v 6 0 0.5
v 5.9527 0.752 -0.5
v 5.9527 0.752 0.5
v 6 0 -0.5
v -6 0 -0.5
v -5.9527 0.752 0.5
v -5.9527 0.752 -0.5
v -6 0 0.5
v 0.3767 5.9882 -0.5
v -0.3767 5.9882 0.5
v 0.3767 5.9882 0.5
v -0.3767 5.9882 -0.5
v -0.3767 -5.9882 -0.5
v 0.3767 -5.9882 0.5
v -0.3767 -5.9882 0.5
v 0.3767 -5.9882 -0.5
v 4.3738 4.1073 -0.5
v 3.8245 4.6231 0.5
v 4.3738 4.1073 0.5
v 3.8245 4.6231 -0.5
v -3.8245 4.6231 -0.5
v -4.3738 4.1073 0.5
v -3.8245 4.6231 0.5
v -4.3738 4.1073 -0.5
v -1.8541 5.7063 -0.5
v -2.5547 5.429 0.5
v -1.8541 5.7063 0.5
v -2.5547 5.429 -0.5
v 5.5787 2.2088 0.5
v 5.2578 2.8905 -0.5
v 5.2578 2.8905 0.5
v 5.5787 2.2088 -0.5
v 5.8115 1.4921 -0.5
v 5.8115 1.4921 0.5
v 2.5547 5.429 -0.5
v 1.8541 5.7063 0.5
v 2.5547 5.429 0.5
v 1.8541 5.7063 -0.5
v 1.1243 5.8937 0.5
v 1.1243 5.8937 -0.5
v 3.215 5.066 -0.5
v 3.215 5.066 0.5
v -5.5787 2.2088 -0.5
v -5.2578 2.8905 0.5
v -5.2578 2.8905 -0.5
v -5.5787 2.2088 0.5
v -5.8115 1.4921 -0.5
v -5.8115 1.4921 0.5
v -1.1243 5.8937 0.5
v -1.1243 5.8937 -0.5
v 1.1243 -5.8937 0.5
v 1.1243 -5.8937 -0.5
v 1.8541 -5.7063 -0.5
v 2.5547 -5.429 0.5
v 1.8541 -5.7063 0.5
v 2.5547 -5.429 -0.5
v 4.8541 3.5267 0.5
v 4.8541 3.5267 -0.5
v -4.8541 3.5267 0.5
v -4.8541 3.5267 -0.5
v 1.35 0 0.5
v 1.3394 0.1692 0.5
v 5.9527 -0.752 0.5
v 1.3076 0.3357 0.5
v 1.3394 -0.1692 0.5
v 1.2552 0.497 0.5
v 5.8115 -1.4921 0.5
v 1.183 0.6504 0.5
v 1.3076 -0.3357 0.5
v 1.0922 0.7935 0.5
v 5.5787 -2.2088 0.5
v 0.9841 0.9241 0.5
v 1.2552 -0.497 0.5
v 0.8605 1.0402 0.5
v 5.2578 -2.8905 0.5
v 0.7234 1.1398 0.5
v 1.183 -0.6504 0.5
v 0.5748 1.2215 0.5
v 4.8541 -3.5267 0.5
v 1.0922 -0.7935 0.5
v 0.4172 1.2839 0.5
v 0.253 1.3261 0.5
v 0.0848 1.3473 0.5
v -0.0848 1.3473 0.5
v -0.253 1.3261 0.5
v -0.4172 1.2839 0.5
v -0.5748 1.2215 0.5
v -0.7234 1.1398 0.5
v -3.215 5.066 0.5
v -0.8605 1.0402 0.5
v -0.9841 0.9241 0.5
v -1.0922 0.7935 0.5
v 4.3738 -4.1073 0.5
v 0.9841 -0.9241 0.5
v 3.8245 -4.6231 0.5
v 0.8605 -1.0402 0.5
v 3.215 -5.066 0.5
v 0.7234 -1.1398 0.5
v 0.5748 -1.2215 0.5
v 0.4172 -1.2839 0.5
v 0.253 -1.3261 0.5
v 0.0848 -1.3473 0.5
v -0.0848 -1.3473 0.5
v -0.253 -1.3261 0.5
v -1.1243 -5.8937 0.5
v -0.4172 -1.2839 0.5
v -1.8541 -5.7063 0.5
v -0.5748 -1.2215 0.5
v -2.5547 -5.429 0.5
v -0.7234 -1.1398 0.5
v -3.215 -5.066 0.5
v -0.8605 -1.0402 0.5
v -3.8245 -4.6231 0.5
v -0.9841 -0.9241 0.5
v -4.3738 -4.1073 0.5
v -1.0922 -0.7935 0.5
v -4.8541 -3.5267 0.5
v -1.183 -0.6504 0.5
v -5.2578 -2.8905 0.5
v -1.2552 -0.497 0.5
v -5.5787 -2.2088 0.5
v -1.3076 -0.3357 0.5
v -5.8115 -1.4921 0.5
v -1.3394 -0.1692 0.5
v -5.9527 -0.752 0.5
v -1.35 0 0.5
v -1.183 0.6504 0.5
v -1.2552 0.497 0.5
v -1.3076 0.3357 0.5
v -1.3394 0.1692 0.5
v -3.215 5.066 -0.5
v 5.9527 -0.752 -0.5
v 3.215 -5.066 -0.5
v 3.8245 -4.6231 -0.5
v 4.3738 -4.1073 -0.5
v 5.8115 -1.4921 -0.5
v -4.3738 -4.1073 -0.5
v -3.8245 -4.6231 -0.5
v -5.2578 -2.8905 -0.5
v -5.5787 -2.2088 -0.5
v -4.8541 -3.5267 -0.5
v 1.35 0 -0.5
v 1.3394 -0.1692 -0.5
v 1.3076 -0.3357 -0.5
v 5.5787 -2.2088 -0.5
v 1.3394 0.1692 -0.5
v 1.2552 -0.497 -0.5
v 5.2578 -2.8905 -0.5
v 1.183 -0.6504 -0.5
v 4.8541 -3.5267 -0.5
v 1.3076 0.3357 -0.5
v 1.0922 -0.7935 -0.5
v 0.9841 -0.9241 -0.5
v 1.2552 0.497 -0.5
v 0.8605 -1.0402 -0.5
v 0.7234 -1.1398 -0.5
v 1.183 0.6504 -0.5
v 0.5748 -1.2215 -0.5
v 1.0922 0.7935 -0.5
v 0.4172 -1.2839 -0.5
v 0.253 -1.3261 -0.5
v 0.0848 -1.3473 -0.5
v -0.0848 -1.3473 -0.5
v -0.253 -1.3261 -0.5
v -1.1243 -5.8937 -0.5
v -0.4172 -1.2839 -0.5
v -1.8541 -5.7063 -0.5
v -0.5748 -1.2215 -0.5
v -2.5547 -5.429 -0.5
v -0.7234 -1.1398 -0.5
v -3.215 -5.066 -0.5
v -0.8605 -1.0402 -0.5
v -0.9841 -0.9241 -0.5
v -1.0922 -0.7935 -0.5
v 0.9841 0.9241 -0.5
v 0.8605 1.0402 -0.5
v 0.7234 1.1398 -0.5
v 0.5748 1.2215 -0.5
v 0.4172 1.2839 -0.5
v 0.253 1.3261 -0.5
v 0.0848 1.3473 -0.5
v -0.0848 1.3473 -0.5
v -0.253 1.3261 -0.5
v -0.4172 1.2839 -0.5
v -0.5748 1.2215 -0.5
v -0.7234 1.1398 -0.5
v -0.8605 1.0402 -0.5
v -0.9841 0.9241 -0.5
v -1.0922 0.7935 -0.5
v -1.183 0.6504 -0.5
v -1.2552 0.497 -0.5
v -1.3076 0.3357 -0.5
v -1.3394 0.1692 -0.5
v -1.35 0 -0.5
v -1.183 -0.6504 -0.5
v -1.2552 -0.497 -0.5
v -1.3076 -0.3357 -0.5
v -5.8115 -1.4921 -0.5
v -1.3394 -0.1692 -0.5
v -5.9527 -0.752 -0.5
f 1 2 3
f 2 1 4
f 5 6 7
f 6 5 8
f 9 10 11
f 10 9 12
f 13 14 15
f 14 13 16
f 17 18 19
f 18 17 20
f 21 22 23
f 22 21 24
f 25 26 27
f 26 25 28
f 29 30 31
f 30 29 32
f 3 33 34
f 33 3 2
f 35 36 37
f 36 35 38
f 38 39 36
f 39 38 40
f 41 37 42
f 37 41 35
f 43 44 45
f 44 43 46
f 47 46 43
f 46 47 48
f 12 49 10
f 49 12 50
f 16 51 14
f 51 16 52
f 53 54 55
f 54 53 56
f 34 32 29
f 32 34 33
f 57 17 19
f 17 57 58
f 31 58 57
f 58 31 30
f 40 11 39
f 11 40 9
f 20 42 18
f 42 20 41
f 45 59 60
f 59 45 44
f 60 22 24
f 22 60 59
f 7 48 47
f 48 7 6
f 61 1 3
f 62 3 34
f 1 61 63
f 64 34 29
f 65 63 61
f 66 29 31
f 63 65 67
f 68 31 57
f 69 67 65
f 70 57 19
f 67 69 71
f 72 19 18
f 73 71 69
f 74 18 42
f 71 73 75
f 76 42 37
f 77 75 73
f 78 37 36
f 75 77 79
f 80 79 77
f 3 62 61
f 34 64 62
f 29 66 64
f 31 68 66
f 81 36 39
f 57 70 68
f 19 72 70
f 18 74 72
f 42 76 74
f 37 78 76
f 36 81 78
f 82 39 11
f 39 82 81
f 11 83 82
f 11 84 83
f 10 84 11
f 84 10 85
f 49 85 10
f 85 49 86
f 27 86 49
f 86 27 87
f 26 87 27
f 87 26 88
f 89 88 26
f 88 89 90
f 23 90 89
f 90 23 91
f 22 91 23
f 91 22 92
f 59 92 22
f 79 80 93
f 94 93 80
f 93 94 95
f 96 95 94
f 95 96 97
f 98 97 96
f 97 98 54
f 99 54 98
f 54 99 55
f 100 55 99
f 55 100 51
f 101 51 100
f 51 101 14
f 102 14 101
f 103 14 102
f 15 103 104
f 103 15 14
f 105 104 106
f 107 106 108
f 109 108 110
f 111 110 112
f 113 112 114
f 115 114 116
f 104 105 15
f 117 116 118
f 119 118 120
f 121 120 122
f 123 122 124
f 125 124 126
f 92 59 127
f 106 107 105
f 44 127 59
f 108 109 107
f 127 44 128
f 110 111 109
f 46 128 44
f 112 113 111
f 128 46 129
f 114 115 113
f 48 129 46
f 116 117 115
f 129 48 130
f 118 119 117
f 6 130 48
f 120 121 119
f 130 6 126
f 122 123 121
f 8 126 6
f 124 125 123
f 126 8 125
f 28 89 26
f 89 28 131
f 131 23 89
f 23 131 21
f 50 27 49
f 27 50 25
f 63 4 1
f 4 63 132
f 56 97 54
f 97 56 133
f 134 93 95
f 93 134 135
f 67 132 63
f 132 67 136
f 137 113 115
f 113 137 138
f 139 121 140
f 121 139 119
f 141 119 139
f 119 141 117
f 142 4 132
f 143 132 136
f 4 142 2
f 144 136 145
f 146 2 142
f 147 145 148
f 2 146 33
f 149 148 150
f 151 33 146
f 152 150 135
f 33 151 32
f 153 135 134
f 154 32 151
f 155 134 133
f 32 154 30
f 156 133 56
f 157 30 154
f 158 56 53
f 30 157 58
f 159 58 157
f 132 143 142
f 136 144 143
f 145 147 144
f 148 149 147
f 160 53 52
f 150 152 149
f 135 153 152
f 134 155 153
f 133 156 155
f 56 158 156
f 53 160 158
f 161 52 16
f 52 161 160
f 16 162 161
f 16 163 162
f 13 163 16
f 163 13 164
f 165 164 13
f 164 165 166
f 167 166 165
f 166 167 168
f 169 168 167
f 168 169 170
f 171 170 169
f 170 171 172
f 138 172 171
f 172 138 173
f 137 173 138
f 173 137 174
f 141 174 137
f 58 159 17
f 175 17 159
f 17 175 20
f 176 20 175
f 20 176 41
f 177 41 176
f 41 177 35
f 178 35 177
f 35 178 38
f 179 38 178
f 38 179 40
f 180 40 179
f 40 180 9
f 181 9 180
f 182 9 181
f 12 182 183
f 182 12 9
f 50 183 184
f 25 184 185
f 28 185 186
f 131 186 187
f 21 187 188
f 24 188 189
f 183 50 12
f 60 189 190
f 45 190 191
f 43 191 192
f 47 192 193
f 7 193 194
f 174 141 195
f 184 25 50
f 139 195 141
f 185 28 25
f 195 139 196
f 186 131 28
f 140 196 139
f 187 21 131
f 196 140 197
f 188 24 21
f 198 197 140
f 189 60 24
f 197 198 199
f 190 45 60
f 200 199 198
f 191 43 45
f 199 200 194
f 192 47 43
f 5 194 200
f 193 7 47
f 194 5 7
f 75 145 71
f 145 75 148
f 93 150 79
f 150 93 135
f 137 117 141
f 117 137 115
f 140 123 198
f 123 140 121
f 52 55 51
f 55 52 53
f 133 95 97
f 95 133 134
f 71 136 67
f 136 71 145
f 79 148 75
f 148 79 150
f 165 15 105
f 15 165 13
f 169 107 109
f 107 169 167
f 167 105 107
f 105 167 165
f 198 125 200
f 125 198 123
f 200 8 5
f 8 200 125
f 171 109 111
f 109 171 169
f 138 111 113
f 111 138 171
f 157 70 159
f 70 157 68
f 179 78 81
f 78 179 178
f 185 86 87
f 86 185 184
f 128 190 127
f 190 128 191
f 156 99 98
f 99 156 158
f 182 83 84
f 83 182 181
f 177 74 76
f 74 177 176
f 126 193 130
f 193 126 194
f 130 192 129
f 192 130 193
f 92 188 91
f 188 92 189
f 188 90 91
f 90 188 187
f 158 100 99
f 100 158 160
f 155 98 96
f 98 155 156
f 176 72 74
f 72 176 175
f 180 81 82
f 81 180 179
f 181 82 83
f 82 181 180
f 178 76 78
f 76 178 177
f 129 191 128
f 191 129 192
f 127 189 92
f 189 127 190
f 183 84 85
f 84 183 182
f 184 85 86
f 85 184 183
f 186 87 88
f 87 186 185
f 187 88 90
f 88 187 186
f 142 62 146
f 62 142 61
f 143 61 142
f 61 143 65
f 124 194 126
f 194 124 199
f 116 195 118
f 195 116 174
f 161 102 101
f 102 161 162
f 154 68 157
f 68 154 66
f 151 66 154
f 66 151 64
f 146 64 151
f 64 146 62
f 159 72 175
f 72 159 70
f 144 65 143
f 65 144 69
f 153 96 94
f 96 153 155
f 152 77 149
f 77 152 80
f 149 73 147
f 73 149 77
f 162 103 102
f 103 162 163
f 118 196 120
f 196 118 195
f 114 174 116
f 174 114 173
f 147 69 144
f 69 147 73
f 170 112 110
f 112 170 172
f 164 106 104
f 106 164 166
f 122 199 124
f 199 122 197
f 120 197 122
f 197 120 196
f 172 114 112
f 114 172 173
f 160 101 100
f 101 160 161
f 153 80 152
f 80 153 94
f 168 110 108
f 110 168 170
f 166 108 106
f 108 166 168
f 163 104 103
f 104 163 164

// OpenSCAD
$fn = 50;


difference() {
	union() {
		translate(v = [0, 0, -0.5000000000]) {
			cylinder(h = 1, r = 6.0000000000);
		}
	}
	union() {
		translate(v = [0, 0, -100.0000000000]) {
			cylinder(h = 200, r = 1.3500000000);
		}
	}
}
